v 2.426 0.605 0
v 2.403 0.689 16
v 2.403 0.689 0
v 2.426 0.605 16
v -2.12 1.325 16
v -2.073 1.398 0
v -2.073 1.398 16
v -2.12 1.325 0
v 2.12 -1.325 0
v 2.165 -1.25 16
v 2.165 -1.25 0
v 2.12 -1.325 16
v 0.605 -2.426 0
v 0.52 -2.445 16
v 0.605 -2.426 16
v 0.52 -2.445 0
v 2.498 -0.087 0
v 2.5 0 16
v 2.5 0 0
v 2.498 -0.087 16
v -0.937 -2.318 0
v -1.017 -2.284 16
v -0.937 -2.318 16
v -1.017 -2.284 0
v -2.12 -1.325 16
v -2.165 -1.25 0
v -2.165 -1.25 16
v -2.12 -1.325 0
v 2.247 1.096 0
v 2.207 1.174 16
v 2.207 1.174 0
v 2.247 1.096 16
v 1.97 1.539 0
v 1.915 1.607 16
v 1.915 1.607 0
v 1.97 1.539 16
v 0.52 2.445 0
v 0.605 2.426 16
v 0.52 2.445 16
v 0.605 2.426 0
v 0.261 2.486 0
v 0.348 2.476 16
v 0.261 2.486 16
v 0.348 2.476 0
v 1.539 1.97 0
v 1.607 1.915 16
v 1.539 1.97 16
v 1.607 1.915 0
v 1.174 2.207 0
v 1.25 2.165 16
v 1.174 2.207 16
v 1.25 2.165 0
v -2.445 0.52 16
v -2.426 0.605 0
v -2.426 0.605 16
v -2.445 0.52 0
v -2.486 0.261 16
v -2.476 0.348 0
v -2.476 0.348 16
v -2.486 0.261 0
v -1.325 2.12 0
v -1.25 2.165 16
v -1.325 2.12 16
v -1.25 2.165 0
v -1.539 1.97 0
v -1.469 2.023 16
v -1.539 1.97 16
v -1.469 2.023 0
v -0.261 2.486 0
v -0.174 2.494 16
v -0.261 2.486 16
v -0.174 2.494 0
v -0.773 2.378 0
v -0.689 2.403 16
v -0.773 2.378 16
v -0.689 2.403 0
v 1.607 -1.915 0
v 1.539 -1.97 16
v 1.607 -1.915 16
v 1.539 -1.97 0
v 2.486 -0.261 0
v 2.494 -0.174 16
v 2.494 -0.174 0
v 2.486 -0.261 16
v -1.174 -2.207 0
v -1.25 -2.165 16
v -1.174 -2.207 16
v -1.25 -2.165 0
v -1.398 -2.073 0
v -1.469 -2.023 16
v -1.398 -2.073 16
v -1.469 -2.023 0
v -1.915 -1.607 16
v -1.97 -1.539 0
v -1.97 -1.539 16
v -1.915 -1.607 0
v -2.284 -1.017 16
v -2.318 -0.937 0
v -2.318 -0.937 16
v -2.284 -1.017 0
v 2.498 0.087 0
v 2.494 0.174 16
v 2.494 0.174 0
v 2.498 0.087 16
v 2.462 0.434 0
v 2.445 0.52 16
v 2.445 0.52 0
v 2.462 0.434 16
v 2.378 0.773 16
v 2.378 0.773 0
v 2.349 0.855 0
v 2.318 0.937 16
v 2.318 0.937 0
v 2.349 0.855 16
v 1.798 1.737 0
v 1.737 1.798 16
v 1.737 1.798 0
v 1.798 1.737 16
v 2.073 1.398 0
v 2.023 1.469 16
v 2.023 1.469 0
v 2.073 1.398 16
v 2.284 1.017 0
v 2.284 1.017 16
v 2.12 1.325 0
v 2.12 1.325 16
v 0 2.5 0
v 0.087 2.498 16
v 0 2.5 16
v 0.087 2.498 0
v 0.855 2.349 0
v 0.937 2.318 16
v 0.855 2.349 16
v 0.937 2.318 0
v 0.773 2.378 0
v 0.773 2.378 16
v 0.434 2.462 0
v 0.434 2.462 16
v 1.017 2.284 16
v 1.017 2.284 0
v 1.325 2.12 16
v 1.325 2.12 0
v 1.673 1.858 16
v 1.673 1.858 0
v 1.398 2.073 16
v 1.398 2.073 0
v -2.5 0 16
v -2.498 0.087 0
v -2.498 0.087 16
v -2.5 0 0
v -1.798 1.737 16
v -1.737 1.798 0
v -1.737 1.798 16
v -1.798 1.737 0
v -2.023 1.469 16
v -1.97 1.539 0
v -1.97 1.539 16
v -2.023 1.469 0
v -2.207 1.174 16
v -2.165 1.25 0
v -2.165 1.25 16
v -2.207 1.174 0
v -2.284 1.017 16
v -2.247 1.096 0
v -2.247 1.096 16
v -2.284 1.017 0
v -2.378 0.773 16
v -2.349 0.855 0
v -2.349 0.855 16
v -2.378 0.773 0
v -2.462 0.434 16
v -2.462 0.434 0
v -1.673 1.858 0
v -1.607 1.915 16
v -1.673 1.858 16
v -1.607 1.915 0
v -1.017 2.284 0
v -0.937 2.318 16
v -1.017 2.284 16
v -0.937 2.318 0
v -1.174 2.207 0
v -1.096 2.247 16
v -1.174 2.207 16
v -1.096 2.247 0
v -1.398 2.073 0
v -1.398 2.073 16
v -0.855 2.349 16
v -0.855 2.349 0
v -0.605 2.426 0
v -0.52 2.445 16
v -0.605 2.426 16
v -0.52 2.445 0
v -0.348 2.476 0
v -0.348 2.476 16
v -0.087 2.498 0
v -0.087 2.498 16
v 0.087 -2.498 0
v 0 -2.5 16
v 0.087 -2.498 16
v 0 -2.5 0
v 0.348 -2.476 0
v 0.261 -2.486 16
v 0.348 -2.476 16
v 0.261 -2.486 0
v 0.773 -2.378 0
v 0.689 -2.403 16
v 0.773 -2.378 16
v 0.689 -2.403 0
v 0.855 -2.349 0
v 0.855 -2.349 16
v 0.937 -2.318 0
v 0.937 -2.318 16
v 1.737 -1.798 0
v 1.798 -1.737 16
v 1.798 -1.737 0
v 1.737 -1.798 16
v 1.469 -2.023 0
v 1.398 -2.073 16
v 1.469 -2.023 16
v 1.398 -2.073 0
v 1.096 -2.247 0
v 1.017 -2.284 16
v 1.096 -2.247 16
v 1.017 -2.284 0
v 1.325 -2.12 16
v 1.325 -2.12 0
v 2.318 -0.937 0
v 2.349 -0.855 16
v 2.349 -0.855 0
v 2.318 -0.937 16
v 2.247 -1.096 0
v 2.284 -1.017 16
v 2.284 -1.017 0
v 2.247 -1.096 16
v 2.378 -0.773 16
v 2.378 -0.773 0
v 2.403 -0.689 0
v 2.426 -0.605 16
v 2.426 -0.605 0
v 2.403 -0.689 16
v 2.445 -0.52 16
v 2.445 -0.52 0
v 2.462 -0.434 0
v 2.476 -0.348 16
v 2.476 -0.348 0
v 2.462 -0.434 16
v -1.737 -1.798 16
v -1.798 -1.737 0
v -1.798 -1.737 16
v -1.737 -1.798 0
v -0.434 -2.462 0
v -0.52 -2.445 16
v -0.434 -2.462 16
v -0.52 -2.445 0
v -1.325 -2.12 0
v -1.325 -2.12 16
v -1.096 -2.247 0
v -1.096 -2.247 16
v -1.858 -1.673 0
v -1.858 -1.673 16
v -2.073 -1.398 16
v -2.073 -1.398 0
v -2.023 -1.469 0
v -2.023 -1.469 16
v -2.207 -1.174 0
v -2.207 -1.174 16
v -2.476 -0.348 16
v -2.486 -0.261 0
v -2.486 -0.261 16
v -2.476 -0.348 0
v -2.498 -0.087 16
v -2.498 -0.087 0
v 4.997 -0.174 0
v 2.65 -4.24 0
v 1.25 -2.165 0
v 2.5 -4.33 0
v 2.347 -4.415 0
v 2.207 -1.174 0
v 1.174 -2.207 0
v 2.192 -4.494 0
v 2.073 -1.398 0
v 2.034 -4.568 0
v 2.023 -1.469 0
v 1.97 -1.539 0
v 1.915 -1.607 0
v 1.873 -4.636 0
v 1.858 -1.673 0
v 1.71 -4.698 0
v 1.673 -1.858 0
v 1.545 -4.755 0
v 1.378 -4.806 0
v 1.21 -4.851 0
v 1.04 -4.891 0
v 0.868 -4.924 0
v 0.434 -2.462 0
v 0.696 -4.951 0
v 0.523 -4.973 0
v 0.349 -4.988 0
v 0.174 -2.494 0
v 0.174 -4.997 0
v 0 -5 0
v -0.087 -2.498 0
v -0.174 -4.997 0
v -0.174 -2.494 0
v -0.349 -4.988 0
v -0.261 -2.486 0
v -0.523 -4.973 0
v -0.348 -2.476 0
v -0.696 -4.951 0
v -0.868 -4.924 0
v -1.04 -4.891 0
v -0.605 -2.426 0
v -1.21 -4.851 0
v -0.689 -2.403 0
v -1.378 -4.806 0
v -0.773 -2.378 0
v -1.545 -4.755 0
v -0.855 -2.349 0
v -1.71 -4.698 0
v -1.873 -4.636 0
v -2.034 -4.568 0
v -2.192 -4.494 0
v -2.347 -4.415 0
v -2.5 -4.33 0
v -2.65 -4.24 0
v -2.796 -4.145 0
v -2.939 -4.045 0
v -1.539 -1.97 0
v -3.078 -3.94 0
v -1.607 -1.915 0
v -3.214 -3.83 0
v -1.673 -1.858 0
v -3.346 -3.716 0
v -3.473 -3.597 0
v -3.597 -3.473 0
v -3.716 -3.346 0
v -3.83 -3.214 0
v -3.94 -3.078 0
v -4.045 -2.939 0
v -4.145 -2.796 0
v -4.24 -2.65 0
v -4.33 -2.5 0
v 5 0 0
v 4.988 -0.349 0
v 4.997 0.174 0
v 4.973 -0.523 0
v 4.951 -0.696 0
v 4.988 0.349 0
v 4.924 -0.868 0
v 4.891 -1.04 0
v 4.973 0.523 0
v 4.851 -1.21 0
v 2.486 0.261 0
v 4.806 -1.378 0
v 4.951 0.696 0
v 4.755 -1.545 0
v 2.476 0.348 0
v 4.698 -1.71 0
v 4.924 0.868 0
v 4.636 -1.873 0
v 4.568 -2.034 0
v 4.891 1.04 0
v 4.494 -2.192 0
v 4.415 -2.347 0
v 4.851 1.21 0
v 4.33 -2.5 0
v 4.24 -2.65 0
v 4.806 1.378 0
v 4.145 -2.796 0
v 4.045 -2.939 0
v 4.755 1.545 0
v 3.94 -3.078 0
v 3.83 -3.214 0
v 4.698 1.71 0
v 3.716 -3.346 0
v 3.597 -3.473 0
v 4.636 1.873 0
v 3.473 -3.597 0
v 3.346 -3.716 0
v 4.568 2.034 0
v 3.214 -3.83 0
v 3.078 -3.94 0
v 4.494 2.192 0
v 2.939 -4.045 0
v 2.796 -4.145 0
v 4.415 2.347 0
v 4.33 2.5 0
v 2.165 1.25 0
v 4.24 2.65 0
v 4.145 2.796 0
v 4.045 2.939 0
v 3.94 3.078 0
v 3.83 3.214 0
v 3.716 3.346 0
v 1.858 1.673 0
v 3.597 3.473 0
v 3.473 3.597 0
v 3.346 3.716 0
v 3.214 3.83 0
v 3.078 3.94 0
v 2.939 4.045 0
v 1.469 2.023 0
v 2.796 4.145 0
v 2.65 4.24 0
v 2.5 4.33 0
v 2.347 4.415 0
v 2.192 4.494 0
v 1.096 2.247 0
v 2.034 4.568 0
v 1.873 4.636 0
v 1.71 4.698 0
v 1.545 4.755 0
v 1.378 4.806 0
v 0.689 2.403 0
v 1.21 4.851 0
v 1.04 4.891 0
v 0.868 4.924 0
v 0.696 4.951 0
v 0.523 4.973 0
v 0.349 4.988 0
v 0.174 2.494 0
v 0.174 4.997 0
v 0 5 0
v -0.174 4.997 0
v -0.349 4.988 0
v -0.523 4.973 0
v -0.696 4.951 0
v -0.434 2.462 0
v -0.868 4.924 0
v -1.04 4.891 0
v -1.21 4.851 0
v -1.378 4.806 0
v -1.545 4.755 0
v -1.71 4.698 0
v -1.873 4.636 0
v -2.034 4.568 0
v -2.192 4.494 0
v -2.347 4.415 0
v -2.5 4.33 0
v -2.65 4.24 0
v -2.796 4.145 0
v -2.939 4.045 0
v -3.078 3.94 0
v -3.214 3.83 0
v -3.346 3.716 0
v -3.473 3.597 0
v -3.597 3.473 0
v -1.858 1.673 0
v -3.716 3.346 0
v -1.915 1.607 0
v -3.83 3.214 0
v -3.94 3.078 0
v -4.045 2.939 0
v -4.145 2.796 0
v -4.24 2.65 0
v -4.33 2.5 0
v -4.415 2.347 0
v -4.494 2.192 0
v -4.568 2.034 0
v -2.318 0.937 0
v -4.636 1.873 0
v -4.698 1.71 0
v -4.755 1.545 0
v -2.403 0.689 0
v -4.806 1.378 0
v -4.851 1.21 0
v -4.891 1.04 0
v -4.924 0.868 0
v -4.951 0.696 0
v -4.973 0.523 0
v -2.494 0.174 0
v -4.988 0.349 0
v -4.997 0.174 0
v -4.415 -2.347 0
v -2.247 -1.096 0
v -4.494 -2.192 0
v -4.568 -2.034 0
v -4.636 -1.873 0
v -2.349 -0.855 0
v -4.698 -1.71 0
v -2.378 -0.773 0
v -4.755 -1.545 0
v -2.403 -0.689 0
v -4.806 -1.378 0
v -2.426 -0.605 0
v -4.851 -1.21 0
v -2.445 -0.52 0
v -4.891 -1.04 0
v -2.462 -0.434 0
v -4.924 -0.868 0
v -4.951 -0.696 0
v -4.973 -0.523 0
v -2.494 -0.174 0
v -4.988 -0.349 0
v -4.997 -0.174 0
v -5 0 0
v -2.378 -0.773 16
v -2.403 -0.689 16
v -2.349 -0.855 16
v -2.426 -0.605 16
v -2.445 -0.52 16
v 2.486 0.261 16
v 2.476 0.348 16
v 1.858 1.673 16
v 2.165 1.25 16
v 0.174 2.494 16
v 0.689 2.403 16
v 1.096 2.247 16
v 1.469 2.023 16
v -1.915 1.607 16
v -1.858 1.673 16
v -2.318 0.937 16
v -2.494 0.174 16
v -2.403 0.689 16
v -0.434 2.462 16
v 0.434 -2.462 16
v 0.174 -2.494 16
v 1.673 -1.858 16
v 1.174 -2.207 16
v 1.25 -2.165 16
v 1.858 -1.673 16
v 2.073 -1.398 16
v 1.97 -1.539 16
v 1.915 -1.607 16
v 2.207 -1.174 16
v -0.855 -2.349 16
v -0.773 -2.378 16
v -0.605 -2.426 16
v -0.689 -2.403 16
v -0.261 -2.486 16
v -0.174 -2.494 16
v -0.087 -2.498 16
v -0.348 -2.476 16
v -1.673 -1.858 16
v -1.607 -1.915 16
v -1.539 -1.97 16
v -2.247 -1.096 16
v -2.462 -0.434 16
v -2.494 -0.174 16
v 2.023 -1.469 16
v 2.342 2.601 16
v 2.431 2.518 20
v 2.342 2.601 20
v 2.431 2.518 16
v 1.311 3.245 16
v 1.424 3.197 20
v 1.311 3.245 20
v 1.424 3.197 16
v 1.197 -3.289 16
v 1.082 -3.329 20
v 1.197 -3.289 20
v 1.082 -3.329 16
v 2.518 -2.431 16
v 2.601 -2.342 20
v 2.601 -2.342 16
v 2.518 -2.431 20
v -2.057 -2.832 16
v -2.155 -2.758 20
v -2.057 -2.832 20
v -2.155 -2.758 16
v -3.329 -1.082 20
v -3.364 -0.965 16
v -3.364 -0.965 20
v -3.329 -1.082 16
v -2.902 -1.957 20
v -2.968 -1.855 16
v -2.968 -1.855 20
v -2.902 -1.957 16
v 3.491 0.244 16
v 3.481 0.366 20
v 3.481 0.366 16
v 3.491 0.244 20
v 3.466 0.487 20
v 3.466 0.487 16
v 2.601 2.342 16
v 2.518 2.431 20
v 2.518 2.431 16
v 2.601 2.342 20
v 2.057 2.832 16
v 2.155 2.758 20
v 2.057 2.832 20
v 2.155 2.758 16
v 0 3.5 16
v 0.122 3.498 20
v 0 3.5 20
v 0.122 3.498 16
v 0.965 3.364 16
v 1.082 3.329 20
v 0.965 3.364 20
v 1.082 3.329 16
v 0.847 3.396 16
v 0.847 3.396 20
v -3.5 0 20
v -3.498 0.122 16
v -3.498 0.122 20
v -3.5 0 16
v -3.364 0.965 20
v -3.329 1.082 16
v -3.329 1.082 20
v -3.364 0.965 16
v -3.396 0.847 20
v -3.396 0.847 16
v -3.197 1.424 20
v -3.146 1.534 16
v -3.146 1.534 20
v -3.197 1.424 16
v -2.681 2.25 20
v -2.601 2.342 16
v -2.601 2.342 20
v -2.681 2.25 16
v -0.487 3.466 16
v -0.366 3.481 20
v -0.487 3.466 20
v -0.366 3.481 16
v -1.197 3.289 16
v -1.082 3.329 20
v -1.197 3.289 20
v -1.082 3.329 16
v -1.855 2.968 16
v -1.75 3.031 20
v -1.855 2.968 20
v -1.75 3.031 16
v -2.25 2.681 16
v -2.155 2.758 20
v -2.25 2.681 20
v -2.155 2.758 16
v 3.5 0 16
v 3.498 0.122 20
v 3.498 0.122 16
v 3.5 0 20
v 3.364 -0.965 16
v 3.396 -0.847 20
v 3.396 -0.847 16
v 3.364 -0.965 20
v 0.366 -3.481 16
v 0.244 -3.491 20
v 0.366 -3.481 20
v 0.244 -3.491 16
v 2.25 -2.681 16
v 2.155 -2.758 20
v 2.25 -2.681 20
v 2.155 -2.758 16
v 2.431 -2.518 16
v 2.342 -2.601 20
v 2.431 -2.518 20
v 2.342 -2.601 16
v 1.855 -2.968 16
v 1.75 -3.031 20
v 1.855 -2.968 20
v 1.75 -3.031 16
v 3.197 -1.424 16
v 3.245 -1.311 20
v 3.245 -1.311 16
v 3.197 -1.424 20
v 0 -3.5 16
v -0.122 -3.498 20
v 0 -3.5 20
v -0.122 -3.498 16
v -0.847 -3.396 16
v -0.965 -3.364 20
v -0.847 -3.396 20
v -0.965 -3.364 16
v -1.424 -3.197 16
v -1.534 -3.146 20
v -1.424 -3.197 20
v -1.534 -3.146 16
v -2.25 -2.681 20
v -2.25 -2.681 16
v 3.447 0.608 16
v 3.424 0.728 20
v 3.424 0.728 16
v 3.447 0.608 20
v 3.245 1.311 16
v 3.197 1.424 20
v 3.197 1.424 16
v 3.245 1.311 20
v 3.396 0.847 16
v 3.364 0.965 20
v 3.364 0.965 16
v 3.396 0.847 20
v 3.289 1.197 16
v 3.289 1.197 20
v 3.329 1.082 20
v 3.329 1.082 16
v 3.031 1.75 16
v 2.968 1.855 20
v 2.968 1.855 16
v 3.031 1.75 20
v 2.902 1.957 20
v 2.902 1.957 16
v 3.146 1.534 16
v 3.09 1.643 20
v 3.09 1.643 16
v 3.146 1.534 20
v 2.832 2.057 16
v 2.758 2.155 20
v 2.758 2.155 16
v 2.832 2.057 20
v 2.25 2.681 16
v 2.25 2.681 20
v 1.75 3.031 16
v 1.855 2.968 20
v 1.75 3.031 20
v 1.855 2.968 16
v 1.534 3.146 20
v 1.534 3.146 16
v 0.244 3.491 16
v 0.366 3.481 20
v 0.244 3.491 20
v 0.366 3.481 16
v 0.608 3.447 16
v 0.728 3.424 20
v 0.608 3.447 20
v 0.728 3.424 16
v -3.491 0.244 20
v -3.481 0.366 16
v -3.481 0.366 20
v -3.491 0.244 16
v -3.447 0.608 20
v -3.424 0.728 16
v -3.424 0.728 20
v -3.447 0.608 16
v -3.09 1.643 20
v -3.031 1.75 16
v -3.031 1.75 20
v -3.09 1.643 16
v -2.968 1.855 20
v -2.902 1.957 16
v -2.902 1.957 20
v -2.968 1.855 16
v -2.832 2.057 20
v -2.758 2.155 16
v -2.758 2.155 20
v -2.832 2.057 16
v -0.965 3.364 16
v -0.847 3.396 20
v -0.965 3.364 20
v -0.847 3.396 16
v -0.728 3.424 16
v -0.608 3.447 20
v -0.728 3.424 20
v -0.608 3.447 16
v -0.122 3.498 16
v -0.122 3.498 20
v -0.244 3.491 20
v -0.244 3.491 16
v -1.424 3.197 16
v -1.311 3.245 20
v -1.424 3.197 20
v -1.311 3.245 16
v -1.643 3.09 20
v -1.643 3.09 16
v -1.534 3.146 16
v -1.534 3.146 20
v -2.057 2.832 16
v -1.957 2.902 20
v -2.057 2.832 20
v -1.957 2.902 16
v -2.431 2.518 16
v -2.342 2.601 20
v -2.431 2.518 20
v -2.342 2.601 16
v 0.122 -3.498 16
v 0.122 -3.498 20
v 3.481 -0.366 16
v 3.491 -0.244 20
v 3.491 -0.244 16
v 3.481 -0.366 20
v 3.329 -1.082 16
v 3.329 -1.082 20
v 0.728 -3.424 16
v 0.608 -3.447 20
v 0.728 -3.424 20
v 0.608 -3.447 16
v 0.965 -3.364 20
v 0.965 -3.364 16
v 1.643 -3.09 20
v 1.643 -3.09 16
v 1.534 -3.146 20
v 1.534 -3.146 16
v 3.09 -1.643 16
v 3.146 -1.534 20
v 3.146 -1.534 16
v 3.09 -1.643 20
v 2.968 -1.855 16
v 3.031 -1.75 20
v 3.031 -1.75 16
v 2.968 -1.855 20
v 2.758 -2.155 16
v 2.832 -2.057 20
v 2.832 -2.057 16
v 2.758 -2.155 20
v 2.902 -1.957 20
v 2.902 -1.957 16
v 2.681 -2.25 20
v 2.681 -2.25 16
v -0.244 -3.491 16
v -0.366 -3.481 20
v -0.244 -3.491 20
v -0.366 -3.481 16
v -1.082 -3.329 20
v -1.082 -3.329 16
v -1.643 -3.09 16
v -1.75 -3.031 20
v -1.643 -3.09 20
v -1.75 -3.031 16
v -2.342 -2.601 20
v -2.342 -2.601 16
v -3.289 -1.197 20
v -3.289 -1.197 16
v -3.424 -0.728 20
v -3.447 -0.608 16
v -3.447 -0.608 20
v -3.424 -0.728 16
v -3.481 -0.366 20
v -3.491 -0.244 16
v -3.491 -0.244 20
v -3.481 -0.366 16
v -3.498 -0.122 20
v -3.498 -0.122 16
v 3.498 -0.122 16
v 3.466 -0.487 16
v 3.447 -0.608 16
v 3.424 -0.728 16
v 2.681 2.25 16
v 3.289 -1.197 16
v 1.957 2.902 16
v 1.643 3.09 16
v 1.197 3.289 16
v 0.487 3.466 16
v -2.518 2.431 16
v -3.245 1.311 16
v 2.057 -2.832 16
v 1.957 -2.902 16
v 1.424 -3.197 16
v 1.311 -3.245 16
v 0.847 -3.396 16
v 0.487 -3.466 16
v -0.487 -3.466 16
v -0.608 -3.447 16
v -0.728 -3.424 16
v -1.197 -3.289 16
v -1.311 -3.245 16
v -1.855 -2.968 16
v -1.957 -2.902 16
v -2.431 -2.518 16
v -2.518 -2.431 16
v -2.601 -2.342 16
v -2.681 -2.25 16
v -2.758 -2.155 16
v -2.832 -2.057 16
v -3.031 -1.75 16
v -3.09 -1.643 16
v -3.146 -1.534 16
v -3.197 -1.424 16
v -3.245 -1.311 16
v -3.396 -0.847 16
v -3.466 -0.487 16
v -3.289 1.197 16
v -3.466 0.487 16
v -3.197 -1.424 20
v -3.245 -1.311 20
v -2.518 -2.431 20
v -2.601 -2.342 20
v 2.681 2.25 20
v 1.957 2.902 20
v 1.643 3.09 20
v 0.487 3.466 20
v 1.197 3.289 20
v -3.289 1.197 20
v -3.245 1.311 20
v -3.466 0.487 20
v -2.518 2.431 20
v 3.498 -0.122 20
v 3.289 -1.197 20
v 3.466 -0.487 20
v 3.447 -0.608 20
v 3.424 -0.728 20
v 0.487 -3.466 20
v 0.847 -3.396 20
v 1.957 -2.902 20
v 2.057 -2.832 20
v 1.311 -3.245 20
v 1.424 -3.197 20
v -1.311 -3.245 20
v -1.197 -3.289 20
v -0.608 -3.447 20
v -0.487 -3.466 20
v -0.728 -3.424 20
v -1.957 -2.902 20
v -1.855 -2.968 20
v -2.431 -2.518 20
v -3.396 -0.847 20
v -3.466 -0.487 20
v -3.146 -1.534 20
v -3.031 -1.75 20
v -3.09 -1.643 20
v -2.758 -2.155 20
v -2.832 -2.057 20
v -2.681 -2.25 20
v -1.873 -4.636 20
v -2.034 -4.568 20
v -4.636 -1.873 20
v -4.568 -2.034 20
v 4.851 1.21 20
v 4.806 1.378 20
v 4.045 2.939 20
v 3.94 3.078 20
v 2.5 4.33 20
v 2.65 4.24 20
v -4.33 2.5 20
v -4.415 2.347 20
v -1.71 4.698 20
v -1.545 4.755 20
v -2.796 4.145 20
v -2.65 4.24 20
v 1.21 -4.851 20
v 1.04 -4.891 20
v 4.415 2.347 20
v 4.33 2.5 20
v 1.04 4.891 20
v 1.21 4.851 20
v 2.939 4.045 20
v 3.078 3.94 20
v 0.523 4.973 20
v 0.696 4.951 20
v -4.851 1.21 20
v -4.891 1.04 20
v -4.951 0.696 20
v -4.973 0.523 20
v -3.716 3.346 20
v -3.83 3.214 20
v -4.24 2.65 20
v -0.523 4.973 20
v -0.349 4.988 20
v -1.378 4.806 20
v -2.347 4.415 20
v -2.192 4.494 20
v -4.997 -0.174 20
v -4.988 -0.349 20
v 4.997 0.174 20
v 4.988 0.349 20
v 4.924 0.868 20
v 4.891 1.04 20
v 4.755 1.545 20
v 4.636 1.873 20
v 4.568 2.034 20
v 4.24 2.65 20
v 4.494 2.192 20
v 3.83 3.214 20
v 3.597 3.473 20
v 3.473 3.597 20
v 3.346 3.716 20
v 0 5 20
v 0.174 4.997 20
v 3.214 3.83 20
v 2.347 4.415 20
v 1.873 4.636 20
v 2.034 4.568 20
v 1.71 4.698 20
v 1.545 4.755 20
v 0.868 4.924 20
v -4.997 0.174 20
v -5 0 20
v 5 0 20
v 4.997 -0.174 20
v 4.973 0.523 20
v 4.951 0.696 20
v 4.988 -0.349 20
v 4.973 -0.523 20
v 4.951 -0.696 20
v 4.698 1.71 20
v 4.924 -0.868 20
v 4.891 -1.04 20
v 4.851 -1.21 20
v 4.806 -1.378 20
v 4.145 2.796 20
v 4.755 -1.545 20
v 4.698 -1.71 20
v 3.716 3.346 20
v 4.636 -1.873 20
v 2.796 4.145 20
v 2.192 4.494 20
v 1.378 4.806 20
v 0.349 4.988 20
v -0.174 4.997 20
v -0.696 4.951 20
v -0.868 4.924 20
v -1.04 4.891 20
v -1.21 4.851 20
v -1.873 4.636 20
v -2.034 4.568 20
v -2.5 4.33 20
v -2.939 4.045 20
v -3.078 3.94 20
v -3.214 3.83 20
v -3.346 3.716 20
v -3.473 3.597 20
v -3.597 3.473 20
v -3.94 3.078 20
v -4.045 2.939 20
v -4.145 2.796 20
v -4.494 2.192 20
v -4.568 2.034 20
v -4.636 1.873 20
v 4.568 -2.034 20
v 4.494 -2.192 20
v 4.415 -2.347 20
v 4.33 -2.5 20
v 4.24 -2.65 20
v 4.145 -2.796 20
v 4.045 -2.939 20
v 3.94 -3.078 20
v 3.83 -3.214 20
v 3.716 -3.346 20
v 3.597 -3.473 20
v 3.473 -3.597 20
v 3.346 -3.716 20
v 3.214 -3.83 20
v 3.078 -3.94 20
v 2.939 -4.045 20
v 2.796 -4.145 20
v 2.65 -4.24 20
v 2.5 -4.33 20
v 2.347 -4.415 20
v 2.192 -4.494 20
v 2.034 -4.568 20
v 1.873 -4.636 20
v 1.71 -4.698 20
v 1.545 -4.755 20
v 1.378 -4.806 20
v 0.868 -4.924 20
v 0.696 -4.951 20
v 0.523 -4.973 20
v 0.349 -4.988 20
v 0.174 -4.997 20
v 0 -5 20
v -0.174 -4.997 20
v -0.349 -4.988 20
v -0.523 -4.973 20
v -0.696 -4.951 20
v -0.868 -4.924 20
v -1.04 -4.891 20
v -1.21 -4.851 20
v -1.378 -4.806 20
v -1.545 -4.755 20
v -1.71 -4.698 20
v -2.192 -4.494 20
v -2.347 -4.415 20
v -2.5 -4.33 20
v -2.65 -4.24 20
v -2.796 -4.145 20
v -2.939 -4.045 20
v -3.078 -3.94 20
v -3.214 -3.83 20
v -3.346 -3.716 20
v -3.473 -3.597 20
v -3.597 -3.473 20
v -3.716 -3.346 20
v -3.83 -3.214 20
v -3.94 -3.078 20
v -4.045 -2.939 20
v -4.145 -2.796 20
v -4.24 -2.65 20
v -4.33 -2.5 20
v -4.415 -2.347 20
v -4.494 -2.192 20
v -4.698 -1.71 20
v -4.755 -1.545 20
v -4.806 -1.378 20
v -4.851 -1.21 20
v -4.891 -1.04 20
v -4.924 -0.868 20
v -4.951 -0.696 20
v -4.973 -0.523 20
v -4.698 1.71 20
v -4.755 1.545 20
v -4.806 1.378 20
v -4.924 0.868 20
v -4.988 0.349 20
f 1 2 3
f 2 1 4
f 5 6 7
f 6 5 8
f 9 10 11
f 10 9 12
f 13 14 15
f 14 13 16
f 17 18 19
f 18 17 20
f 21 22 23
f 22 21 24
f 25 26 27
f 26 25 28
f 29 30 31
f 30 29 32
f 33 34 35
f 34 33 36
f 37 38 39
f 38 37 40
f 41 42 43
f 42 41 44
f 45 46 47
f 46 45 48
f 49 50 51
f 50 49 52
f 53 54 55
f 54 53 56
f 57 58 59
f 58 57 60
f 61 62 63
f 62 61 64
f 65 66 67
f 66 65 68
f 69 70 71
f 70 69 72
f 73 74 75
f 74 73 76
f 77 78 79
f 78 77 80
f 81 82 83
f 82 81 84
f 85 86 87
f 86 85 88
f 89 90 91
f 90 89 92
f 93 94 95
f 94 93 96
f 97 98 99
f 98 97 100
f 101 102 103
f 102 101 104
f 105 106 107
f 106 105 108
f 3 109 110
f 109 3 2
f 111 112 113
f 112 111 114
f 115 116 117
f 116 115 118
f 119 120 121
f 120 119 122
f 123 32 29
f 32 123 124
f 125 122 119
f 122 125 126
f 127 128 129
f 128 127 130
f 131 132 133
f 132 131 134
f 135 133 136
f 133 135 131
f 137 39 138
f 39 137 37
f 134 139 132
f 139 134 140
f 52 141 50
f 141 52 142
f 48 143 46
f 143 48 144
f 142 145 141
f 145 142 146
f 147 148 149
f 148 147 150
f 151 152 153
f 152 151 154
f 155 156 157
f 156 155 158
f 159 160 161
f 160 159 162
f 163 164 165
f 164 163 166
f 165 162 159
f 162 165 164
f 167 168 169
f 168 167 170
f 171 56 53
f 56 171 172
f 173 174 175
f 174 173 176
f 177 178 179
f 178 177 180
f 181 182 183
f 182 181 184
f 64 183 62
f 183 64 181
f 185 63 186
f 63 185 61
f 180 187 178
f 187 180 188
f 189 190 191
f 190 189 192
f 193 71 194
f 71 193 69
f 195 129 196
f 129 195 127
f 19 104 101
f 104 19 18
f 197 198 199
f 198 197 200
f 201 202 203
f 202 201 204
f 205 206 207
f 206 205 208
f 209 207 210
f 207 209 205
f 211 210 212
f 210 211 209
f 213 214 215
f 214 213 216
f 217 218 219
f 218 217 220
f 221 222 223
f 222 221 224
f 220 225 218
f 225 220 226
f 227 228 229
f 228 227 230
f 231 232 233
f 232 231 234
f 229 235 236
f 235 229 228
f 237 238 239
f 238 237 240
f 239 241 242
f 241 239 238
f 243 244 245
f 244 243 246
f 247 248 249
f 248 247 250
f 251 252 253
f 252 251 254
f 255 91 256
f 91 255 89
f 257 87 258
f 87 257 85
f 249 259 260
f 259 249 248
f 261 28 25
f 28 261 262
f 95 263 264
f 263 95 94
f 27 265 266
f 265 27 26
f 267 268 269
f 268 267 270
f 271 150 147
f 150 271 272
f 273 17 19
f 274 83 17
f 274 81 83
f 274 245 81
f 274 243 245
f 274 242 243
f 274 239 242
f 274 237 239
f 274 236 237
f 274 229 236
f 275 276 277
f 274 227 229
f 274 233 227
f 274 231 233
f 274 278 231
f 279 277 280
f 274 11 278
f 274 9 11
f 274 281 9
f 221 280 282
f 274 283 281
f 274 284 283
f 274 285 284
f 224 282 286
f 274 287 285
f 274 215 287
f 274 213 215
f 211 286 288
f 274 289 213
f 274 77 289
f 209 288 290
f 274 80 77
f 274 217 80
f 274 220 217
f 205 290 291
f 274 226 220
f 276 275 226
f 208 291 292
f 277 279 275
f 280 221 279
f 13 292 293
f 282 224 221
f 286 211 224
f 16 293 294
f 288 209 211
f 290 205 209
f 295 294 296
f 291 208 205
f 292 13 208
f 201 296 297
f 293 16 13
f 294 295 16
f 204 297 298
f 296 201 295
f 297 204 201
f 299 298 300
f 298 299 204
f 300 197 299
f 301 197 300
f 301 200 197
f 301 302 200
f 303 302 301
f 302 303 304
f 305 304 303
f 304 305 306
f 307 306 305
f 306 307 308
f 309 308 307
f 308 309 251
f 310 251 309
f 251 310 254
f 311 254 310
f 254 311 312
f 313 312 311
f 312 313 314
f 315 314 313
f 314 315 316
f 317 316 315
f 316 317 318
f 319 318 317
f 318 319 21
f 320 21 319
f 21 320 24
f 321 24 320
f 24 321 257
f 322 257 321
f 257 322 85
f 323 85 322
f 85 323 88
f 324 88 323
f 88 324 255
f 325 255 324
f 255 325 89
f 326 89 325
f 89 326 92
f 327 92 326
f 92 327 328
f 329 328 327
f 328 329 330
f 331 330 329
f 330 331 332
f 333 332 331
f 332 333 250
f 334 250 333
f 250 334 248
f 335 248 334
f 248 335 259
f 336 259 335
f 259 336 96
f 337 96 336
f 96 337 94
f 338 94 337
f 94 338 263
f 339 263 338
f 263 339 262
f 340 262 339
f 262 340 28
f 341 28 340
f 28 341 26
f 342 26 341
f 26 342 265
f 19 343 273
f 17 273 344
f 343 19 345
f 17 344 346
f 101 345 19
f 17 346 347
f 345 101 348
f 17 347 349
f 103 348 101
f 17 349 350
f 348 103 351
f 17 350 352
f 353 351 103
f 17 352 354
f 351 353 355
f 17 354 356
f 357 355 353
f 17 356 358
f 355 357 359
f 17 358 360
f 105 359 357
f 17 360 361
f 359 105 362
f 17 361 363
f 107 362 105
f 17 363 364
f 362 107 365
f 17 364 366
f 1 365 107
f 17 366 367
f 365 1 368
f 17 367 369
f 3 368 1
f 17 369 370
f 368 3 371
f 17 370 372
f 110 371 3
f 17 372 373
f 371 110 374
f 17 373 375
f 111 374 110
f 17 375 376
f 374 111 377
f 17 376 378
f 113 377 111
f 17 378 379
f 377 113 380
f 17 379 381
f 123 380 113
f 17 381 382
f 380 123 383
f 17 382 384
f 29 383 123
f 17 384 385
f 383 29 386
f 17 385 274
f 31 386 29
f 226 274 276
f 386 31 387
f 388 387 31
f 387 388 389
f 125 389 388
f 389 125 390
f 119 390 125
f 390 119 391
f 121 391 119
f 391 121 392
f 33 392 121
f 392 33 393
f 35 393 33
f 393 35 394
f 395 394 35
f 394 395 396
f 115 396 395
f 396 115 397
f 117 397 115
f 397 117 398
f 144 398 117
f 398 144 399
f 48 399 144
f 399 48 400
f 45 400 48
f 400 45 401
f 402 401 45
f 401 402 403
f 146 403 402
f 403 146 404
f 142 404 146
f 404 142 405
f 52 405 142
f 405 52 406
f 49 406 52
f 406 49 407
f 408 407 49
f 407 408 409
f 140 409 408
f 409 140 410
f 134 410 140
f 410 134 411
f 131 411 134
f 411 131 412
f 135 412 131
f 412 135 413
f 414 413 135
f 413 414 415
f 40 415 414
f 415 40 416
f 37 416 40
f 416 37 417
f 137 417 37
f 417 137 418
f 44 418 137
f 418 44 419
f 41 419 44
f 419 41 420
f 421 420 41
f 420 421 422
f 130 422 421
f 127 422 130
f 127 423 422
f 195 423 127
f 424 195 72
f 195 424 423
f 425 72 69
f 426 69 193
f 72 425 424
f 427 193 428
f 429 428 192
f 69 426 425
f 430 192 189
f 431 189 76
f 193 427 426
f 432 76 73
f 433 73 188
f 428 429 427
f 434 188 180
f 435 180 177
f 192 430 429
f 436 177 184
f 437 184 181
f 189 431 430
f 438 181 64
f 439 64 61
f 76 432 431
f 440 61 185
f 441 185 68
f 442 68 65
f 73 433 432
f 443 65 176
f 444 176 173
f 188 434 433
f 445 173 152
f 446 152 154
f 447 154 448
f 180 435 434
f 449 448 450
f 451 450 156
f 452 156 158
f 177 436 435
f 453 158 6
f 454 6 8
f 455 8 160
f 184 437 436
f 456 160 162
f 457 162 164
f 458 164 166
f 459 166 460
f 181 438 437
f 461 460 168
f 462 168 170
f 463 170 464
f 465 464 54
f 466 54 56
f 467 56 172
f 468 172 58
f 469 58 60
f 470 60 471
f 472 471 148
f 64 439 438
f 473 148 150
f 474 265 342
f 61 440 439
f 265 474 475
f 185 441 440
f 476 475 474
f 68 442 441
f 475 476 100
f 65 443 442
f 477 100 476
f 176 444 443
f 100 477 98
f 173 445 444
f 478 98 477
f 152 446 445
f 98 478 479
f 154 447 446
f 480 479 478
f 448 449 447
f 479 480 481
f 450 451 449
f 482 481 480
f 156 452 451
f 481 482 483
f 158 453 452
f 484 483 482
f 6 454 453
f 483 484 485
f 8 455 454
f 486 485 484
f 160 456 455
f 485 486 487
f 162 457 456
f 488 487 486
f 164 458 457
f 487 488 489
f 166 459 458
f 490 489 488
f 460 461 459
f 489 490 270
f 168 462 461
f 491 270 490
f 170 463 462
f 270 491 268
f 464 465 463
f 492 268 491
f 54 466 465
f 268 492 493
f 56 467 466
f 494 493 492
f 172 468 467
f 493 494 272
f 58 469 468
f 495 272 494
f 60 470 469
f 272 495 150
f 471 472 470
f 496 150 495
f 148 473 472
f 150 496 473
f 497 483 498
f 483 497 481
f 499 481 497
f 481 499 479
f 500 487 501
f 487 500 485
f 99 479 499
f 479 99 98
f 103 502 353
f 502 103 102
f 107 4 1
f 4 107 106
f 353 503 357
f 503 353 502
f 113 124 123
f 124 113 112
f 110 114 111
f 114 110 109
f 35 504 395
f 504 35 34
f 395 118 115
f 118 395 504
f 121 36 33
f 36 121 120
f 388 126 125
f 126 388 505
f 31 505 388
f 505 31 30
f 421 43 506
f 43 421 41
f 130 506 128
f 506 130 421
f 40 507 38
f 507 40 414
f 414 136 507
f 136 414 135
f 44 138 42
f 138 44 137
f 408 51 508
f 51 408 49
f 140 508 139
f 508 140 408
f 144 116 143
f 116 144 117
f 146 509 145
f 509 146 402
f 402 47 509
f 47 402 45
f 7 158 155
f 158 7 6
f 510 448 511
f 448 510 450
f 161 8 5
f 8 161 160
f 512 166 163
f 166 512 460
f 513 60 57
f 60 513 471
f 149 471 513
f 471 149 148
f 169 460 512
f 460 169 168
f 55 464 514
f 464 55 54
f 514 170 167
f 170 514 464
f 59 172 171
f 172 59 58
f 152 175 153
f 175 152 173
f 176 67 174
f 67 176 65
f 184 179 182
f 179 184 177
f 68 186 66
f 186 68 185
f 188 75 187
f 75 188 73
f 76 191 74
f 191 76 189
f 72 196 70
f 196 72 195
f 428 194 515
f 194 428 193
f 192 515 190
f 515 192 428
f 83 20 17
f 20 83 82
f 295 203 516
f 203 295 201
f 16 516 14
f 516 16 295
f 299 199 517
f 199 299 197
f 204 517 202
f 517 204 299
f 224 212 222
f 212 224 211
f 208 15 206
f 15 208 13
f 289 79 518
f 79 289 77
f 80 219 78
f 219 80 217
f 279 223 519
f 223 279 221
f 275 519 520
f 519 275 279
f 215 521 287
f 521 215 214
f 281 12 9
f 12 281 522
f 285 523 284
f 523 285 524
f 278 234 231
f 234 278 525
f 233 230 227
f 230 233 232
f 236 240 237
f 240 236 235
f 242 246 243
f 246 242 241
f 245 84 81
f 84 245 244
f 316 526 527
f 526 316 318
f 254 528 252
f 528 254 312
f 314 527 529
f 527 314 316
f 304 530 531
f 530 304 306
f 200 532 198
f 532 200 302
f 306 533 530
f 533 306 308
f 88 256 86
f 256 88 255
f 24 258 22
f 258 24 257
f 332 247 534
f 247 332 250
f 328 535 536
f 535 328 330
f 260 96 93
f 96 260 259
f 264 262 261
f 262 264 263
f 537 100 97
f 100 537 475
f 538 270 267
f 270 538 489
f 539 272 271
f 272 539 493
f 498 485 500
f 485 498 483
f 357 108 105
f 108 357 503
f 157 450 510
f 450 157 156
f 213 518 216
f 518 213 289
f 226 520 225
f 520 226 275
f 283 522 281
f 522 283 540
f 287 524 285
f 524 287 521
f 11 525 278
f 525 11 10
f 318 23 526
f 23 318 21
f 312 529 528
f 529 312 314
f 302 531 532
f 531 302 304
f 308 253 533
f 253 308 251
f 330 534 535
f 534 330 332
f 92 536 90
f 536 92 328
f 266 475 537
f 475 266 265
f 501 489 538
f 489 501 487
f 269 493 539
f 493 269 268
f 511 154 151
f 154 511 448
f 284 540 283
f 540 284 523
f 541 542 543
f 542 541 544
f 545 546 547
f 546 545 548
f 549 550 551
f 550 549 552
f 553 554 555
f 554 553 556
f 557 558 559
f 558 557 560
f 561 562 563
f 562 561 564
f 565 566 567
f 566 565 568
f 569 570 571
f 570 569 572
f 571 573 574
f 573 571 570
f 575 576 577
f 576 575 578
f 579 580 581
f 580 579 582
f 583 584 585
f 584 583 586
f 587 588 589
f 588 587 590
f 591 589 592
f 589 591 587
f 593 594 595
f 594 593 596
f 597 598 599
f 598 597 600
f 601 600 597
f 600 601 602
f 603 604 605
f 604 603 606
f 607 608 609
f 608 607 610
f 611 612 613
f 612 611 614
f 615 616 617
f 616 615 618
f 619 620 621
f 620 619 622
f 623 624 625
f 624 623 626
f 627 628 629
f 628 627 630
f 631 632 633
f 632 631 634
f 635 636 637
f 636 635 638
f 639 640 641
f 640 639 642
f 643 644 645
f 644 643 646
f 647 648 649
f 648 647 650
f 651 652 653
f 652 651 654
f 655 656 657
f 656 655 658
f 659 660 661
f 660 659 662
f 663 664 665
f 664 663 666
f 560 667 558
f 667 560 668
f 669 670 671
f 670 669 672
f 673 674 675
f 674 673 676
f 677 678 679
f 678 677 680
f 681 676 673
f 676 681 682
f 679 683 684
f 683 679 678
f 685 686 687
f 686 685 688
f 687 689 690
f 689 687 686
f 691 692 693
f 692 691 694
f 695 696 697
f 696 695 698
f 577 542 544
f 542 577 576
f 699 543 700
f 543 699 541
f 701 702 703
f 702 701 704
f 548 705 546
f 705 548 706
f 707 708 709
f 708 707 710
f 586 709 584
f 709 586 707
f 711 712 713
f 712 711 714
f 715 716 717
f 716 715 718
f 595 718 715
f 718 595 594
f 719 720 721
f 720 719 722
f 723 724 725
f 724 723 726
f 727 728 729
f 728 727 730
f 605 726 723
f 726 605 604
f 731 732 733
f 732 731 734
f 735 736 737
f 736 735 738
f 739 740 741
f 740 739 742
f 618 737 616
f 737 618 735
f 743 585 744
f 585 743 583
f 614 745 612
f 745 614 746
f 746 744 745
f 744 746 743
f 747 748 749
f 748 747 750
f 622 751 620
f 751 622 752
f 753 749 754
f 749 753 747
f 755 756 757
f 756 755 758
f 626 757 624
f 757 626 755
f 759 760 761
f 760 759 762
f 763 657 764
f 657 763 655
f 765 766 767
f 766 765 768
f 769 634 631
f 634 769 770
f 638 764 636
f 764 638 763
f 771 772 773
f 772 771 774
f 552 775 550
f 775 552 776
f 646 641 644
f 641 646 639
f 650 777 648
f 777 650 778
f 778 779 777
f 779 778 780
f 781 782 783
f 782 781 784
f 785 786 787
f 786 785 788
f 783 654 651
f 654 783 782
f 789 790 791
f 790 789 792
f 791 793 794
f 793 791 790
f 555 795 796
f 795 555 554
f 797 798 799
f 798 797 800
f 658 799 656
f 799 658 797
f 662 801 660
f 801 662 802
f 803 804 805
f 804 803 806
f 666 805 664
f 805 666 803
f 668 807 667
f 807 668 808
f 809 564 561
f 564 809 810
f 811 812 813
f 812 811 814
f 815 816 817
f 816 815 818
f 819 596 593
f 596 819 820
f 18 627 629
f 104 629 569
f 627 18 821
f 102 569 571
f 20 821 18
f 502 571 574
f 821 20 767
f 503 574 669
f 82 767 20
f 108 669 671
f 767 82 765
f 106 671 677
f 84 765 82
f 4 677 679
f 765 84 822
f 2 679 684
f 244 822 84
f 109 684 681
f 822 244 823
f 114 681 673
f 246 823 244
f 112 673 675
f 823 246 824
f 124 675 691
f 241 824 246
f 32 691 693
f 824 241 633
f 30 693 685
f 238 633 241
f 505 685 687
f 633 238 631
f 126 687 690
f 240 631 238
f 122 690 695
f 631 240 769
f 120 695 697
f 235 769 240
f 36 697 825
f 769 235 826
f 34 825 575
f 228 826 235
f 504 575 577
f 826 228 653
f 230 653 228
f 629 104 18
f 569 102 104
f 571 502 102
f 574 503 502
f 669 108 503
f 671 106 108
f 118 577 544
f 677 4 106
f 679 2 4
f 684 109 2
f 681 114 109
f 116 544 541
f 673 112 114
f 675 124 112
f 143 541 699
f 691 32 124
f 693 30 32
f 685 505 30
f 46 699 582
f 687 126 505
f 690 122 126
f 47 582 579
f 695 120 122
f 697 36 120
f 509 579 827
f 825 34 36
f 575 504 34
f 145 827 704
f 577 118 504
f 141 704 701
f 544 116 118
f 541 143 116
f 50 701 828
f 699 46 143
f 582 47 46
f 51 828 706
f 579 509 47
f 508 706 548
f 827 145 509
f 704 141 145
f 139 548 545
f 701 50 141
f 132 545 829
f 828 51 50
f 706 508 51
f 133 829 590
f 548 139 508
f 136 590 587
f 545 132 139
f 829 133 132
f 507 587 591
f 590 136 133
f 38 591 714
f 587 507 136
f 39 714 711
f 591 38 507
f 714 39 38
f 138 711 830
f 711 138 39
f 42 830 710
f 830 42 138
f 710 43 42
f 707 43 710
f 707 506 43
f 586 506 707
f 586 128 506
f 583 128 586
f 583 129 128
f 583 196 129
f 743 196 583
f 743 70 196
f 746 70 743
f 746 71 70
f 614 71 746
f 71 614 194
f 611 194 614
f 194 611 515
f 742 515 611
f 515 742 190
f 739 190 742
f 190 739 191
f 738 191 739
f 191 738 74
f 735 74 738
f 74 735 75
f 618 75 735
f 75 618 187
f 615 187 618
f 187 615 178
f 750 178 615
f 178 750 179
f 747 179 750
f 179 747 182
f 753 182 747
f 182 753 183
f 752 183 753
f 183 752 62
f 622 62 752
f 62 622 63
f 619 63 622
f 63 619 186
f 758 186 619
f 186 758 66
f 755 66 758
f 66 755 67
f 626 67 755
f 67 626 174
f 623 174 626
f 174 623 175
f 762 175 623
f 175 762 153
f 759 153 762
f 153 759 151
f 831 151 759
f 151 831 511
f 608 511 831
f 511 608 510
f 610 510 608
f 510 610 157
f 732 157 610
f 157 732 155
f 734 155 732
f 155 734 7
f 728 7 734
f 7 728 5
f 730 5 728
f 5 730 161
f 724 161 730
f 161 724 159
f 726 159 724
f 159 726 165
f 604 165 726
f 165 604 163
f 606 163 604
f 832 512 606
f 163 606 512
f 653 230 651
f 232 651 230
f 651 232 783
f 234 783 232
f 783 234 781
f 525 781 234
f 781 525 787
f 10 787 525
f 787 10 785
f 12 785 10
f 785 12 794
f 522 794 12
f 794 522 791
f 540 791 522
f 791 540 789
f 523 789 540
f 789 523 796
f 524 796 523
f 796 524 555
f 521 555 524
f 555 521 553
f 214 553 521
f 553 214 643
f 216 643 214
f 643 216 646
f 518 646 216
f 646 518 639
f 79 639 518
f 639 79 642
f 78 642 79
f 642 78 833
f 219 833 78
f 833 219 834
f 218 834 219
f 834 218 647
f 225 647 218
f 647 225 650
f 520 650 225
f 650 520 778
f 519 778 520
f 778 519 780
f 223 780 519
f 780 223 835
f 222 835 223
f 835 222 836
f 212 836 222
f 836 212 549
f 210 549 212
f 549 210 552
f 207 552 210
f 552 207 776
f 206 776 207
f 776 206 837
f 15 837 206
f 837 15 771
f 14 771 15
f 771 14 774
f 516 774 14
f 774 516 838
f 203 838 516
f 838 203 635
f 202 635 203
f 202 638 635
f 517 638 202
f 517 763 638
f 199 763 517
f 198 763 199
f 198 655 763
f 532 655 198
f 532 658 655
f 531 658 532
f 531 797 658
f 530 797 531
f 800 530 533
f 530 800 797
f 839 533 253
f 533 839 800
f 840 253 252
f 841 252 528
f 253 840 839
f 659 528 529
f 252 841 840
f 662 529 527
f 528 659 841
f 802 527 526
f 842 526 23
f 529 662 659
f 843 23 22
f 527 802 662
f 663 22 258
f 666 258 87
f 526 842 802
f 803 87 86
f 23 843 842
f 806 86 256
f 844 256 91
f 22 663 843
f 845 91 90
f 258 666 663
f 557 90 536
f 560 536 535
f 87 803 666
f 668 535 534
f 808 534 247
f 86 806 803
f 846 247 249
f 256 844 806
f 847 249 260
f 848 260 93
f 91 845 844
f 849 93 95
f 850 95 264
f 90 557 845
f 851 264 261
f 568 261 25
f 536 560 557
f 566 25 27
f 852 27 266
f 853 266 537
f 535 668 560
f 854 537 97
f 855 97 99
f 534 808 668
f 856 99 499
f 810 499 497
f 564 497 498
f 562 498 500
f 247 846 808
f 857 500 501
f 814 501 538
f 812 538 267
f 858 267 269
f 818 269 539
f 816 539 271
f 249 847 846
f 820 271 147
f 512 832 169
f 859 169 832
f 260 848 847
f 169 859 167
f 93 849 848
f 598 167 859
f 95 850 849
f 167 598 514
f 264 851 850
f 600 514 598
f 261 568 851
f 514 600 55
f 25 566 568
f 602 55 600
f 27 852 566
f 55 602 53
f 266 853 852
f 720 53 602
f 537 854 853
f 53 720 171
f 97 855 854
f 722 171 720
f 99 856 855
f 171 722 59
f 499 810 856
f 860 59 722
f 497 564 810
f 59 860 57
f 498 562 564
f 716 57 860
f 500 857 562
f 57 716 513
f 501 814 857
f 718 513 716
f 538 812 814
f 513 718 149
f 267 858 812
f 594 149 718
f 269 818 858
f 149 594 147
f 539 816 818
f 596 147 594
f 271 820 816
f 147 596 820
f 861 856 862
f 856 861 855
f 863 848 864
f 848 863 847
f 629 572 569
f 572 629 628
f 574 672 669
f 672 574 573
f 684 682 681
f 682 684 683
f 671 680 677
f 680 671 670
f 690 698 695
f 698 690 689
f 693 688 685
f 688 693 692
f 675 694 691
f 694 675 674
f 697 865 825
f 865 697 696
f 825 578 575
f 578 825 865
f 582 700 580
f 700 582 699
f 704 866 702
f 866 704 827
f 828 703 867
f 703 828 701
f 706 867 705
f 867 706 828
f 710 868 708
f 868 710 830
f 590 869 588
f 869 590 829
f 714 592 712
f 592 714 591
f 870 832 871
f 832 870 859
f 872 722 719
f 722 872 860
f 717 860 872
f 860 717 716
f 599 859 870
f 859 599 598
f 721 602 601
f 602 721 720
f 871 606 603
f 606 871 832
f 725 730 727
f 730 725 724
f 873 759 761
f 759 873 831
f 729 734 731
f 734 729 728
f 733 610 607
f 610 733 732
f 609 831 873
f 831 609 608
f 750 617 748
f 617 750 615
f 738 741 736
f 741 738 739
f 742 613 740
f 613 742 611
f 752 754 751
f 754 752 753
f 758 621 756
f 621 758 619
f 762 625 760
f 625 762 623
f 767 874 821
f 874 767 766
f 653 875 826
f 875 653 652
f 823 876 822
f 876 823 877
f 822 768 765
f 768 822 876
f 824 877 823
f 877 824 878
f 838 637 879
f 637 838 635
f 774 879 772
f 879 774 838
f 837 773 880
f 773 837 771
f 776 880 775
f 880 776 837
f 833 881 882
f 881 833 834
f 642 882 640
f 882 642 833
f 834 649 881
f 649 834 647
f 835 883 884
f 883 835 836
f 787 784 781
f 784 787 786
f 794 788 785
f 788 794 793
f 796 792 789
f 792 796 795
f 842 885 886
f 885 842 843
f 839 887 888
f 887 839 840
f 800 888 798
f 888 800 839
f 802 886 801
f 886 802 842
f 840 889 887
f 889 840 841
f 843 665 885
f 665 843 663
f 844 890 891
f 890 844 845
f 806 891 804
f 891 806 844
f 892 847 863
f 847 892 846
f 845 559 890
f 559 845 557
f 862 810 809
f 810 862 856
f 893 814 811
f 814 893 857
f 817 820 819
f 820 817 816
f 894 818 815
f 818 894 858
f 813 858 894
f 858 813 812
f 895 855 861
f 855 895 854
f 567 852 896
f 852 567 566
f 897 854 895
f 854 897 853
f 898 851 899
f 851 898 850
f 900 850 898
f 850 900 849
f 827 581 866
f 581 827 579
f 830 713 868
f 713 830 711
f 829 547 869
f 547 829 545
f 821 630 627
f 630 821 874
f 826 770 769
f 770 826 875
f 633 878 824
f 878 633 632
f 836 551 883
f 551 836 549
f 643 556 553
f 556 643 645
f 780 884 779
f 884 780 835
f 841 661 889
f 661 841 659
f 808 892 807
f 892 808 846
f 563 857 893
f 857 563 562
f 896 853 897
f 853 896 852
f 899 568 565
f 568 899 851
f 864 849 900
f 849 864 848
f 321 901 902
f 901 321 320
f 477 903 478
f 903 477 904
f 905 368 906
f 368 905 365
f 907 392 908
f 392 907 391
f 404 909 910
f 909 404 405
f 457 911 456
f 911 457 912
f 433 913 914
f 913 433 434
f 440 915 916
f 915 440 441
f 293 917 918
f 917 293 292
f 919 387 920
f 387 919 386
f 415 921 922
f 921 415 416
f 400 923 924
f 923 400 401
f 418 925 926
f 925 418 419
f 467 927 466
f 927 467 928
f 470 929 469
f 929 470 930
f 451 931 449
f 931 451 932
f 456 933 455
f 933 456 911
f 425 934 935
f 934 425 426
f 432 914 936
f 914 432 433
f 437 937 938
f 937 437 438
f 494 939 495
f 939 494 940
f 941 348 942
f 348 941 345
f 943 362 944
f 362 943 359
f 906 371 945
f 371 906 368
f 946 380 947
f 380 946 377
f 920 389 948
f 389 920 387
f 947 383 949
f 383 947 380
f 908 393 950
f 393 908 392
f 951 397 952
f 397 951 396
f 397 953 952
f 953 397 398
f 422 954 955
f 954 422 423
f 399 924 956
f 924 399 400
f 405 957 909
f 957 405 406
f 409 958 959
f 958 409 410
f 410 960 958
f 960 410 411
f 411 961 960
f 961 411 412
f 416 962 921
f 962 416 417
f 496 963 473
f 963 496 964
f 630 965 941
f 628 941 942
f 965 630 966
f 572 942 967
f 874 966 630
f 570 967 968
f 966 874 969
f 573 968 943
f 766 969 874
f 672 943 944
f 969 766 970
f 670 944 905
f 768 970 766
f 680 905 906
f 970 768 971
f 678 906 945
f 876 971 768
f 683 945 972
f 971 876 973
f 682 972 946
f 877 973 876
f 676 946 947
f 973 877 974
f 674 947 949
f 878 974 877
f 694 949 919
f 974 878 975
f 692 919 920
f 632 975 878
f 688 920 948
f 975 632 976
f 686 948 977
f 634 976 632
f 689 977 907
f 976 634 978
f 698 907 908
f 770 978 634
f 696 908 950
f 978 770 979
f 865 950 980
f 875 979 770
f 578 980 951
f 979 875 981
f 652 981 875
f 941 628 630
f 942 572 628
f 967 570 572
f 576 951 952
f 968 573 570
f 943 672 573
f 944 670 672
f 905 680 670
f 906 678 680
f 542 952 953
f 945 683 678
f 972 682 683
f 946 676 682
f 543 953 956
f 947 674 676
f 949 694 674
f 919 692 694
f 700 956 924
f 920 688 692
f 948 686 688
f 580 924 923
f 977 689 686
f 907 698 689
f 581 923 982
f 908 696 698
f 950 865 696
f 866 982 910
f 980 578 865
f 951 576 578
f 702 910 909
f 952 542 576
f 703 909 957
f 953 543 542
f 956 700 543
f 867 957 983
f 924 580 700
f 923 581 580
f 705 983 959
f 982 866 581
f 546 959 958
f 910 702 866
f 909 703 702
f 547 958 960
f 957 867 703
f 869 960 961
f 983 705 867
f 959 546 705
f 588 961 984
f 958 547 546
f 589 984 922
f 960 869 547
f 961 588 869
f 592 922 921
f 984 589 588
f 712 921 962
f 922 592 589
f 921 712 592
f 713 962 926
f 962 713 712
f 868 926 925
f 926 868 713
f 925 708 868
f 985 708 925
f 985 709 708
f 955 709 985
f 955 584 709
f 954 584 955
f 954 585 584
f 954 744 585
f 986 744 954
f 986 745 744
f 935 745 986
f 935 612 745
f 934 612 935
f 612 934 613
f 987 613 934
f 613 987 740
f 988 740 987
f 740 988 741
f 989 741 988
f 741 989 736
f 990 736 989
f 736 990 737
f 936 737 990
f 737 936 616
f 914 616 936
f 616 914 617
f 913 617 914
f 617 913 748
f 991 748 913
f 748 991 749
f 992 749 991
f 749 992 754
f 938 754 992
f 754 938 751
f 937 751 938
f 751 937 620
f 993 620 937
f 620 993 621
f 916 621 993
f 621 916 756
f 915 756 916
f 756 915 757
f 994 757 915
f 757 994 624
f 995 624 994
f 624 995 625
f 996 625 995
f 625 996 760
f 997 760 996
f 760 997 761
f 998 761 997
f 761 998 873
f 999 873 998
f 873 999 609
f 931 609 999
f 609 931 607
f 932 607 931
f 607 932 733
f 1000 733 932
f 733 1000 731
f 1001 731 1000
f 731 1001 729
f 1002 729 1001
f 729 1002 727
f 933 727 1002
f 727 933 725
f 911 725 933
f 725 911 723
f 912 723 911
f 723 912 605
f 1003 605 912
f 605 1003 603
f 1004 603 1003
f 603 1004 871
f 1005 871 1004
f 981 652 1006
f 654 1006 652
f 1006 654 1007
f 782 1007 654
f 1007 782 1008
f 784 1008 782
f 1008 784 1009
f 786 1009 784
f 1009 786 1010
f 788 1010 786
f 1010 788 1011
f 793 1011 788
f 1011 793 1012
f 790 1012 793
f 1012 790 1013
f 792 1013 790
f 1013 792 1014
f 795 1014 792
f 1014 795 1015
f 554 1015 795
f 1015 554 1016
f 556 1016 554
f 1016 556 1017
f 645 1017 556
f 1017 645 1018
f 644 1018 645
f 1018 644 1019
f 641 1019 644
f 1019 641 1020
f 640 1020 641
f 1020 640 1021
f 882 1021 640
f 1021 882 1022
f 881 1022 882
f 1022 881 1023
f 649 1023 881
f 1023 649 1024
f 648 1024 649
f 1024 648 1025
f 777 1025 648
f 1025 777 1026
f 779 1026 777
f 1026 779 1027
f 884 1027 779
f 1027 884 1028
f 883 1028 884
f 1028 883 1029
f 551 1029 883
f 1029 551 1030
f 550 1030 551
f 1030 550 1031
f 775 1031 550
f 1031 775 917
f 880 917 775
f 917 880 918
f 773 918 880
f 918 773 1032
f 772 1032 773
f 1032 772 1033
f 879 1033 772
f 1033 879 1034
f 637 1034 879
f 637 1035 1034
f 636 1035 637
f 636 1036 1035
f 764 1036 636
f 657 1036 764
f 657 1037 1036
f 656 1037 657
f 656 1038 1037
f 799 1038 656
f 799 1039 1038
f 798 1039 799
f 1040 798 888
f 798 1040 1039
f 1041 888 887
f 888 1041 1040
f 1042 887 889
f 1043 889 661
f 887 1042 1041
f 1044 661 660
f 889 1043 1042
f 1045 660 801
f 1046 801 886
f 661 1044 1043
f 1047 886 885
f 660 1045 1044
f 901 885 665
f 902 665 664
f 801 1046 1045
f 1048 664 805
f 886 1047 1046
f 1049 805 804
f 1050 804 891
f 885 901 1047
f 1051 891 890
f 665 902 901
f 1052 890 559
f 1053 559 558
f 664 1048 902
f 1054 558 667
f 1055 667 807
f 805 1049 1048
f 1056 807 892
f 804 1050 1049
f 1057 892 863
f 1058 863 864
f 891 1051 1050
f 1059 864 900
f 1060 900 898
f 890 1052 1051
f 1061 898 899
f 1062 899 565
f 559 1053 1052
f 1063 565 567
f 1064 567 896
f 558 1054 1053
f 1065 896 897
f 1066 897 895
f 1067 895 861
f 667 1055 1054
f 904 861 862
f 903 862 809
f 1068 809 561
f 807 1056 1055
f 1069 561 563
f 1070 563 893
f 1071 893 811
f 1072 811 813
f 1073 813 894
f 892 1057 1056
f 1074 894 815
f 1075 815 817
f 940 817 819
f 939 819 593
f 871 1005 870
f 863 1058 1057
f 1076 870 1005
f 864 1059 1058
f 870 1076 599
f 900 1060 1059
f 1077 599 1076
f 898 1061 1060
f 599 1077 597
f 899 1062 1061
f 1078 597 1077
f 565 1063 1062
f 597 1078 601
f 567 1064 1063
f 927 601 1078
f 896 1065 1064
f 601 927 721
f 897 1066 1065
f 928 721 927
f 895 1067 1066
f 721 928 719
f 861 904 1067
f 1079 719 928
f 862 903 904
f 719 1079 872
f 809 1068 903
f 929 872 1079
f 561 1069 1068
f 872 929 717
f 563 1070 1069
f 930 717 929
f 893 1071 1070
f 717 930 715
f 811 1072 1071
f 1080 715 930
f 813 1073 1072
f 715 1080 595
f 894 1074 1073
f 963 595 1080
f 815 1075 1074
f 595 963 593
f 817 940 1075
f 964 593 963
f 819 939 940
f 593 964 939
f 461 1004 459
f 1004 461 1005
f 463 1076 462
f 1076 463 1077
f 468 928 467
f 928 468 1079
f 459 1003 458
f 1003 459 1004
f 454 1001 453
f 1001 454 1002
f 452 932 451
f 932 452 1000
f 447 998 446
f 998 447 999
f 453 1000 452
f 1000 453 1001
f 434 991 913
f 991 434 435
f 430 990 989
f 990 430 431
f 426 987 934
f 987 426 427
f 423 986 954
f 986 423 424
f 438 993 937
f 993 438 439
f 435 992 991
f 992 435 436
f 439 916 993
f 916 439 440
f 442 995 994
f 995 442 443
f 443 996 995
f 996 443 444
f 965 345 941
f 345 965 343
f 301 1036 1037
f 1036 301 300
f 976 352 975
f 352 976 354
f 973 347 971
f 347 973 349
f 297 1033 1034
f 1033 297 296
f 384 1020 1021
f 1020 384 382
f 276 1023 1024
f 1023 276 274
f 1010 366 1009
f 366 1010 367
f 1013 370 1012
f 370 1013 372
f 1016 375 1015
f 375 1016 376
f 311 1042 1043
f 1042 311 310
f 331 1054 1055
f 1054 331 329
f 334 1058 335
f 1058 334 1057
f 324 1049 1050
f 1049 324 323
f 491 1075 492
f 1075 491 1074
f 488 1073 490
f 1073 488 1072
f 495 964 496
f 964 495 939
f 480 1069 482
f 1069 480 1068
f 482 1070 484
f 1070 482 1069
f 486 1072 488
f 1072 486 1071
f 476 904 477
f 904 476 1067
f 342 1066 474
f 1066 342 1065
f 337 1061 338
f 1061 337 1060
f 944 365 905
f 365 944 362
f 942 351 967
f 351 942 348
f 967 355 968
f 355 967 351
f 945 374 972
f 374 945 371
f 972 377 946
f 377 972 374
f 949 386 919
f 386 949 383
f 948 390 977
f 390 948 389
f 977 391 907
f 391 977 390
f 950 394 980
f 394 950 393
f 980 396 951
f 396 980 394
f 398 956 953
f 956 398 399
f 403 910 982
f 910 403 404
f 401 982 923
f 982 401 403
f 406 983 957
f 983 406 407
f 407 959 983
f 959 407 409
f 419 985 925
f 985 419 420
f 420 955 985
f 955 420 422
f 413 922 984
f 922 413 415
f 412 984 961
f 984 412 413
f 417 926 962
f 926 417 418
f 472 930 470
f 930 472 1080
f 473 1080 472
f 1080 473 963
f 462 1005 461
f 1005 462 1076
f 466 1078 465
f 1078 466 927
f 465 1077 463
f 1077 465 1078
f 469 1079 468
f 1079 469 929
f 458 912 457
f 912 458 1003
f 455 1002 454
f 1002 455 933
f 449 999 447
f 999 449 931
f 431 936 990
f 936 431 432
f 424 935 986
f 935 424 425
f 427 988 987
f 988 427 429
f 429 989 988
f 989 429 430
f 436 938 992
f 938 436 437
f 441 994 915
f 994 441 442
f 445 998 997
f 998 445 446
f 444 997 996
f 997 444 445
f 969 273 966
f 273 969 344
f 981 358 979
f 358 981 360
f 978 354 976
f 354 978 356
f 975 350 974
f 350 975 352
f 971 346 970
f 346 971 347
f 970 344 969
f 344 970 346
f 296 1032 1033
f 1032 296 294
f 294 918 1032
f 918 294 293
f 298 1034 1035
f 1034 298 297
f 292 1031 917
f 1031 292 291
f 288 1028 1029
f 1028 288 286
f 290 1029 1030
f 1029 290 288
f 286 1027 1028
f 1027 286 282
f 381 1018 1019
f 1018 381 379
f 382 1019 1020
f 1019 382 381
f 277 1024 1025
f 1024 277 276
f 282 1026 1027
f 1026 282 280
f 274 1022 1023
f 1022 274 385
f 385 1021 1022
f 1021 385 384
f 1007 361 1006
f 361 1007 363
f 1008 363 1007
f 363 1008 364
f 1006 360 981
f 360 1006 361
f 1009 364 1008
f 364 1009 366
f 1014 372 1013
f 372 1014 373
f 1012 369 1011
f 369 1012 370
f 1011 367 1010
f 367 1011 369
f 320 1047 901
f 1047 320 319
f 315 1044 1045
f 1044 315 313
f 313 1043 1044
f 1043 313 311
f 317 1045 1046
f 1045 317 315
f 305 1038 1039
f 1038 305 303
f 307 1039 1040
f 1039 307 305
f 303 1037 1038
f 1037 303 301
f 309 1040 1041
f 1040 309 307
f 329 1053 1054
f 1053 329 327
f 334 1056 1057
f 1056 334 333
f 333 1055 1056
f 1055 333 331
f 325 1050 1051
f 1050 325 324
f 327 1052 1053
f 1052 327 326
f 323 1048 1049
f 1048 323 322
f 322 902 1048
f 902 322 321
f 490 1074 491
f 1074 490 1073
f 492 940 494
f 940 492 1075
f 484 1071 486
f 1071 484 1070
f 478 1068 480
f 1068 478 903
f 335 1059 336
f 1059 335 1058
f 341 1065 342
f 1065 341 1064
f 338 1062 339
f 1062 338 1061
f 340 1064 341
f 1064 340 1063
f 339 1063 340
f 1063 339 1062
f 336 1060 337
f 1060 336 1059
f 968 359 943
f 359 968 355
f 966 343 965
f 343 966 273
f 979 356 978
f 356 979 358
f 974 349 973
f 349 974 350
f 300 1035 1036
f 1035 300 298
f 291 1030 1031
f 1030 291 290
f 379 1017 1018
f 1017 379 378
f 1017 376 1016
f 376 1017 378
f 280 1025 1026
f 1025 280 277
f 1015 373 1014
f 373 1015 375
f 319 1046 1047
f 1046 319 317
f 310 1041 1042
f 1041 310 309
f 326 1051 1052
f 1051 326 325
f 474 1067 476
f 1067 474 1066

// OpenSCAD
// Spacer for Lid to upside down lid.
// to allow for an up-side-down lid to be mounted on top for tool storage.

// 70mm M4 bolt.
// 65mm thread (excludes head/nut space).
// 60mm (2x2.5mm thickness for lids)
height = 20;

$fn=180;

difference() {
    union() {
        cylinder(d=10, h=height);
    }
    union() {
        // 6mm perfect for a heat fit.
        cylinder(d=5, h=height);
        
        //recess part way so that the bolt on the box lid 
        // can have a nut to hold it captive when the support is not used.
        
        translate([0,0,height-4]) {
            cylinder(d=7, h=4.1);
        }
    }
}
